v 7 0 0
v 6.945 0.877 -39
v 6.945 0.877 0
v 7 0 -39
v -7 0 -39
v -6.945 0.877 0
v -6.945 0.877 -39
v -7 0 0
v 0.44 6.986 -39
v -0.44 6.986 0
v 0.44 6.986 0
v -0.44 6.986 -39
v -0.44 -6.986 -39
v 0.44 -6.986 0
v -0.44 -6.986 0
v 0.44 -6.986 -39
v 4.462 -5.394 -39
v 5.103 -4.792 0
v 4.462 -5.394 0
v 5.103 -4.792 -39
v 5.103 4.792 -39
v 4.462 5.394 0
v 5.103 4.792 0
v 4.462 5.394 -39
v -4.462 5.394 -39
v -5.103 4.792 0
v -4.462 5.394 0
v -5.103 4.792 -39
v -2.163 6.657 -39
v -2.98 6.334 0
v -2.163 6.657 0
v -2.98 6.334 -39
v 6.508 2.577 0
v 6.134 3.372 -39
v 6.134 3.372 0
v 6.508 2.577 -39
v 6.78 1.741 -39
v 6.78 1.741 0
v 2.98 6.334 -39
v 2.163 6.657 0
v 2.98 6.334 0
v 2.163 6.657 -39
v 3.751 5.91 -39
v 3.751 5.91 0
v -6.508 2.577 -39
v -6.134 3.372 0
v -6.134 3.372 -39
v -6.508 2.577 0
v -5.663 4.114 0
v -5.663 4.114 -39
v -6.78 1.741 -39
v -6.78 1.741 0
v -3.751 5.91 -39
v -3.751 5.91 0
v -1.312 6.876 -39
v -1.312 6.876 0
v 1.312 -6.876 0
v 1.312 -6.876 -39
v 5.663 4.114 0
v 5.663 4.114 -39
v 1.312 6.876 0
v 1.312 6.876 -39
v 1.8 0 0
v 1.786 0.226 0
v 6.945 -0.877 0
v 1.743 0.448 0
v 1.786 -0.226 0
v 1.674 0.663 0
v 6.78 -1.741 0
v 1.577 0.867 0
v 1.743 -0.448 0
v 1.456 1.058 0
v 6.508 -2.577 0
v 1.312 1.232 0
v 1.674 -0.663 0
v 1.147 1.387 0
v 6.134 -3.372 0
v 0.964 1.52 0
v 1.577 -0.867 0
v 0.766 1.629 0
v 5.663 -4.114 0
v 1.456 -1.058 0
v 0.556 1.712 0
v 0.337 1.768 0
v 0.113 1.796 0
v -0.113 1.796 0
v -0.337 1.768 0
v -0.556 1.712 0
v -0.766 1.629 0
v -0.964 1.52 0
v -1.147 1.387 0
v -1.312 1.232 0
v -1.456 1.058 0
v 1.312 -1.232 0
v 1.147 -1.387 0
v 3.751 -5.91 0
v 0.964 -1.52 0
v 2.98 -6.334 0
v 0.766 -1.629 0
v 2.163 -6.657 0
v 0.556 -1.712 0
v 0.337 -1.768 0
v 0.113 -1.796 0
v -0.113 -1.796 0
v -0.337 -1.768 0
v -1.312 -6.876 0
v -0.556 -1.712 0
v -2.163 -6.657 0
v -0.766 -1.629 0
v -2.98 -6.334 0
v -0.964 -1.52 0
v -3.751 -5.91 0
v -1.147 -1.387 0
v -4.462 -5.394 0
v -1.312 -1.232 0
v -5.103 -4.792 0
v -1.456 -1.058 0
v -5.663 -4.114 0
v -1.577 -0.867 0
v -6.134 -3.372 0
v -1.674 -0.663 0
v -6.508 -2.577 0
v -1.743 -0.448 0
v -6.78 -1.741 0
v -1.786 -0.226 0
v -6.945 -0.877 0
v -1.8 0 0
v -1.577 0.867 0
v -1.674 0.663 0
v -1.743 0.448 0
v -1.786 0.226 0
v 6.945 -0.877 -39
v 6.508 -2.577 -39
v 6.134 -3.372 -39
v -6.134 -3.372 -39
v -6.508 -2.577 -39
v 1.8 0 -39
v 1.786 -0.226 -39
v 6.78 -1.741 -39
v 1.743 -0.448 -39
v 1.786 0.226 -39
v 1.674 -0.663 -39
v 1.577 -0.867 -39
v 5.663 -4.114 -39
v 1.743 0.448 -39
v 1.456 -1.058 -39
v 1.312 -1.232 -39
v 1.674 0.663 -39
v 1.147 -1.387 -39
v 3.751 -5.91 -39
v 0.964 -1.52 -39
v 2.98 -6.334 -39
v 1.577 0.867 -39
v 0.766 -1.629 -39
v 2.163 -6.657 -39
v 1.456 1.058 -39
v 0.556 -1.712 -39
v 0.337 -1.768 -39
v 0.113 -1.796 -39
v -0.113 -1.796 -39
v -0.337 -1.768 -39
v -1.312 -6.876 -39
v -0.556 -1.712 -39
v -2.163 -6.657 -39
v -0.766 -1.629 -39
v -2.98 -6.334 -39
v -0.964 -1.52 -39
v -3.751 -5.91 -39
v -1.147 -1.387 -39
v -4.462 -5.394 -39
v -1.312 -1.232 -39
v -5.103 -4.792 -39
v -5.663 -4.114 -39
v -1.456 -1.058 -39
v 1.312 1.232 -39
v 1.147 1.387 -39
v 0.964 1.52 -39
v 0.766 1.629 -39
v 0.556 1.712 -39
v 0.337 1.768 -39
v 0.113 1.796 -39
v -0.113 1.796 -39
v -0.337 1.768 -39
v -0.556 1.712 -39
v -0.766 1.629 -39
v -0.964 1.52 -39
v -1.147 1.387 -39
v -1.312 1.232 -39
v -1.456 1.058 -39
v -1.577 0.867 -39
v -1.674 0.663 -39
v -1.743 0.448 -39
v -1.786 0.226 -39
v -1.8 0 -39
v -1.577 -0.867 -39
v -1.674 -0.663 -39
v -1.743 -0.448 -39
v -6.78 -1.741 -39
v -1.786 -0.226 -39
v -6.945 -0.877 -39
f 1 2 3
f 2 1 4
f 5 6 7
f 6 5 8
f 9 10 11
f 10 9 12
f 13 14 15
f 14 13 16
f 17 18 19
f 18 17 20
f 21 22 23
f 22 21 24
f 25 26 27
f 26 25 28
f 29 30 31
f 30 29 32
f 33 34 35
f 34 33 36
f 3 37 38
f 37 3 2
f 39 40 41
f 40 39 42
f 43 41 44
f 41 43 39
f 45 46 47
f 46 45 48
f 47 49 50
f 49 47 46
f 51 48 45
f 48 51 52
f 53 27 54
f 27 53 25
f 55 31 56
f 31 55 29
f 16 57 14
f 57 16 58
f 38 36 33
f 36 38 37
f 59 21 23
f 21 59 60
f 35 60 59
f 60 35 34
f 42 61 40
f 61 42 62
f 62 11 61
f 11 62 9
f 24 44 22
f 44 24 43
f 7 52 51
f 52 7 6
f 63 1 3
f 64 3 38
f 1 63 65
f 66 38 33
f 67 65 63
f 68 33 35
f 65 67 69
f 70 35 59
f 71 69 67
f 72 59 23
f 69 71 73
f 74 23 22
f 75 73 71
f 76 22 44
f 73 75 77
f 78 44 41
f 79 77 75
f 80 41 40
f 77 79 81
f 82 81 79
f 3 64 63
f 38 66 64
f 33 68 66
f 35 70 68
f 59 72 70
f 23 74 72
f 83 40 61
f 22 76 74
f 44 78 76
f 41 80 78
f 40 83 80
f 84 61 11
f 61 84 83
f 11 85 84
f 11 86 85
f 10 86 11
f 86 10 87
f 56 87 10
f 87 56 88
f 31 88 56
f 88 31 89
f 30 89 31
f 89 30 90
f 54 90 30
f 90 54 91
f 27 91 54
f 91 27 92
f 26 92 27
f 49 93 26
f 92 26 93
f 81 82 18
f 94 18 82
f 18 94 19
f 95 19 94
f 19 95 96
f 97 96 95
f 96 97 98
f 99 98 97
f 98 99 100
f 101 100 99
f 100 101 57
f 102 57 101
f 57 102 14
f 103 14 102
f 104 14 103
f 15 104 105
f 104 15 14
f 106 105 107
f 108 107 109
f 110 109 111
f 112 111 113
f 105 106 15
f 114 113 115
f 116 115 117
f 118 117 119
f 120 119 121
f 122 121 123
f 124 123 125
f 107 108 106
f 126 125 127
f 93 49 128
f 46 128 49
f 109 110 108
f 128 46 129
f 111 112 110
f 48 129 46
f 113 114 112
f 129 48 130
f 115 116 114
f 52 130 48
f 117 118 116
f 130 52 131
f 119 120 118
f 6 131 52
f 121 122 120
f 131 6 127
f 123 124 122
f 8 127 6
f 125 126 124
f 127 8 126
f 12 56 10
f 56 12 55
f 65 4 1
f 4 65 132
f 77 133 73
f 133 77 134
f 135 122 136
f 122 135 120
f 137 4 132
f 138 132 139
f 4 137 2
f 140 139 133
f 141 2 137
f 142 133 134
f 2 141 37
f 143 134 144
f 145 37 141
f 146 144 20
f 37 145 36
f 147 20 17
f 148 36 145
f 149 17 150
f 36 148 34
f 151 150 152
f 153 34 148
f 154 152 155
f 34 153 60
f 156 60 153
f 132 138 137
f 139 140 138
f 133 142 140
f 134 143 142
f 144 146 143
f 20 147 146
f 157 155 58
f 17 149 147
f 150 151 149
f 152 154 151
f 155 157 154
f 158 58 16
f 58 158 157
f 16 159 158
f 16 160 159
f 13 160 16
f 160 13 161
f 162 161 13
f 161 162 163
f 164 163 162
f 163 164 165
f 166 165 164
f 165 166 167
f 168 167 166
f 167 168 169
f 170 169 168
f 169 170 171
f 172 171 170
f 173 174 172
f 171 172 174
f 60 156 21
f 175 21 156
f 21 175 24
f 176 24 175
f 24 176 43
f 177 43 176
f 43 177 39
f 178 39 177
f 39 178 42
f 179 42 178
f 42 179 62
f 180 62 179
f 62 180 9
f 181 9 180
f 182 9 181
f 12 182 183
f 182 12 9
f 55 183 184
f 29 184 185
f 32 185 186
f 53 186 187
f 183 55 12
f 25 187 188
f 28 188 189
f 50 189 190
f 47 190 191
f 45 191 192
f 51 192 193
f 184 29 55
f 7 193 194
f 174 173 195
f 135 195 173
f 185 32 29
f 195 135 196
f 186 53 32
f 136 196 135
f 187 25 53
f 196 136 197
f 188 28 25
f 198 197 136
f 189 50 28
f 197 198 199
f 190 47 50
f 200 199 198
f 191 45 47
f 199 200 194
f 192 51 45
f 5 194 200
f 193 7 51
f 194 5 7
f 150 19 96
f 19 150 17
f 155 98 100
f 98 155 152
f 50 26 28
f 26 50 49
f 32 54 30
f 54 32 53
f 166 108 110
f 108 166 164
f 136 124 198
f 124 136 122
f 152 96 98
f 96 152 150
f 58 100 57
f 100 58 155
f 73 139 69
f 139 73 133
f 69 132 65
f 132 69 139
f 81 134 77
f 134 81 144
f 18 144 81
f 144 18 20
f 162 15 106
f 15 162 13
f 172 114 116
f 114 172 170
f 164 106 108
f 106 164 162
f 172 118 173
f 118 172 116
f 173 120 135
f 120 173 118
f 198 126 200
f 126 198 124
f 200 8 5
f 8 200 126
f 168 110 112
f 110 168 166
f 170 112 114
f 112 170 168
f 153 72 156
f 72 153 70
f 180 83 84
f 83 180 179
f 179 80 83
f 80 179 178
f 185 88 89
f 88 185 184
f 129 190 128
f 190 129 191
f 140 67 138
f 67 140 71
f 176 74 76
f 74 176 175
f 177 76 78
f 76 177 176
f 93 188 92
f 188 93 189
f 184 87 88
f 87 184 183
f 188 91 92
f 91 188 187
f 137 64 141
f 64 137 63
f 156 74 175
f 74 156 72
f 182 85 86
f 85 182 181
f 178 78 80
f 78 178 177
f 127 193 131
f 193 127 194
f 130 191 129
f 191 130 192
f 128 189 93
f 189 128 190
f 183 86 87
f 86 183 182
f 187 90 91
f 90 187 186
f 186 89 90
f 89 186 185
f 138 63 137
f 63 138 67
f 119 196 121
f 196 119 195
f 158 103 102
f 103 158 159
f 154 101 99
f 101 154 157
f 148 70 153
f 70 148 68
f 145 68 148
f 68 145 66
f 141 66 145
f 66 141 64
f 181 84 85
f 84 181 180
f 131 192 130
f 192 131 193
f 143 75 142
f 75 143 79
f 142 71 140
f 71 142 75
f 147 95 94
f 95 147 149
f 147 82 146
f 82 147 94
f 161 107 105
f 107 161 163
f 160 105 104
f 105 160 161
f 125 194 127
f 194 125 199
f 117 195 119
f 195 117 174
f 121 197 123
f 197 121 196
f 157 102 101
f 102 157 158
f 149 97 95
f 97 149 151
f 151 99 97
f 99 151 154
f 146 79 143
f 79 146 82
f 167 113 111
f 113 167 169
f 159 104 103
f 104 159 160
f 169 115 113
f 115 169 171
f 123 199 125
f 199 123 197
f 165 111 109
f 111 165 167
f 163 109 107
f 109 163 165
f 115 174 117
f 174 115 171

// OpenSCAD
$fn = 50;


difference() {
	union() {
		translate(v = [0, 0, -39.0000000000]) {
			cylinder(h = 39, r = 7.0000000000);
		}
	}
	union() {
		#translate(v = [0, 0, -39]) {
			cylinder(h = 39, r = 1.8000000000);
		}
	}
}
